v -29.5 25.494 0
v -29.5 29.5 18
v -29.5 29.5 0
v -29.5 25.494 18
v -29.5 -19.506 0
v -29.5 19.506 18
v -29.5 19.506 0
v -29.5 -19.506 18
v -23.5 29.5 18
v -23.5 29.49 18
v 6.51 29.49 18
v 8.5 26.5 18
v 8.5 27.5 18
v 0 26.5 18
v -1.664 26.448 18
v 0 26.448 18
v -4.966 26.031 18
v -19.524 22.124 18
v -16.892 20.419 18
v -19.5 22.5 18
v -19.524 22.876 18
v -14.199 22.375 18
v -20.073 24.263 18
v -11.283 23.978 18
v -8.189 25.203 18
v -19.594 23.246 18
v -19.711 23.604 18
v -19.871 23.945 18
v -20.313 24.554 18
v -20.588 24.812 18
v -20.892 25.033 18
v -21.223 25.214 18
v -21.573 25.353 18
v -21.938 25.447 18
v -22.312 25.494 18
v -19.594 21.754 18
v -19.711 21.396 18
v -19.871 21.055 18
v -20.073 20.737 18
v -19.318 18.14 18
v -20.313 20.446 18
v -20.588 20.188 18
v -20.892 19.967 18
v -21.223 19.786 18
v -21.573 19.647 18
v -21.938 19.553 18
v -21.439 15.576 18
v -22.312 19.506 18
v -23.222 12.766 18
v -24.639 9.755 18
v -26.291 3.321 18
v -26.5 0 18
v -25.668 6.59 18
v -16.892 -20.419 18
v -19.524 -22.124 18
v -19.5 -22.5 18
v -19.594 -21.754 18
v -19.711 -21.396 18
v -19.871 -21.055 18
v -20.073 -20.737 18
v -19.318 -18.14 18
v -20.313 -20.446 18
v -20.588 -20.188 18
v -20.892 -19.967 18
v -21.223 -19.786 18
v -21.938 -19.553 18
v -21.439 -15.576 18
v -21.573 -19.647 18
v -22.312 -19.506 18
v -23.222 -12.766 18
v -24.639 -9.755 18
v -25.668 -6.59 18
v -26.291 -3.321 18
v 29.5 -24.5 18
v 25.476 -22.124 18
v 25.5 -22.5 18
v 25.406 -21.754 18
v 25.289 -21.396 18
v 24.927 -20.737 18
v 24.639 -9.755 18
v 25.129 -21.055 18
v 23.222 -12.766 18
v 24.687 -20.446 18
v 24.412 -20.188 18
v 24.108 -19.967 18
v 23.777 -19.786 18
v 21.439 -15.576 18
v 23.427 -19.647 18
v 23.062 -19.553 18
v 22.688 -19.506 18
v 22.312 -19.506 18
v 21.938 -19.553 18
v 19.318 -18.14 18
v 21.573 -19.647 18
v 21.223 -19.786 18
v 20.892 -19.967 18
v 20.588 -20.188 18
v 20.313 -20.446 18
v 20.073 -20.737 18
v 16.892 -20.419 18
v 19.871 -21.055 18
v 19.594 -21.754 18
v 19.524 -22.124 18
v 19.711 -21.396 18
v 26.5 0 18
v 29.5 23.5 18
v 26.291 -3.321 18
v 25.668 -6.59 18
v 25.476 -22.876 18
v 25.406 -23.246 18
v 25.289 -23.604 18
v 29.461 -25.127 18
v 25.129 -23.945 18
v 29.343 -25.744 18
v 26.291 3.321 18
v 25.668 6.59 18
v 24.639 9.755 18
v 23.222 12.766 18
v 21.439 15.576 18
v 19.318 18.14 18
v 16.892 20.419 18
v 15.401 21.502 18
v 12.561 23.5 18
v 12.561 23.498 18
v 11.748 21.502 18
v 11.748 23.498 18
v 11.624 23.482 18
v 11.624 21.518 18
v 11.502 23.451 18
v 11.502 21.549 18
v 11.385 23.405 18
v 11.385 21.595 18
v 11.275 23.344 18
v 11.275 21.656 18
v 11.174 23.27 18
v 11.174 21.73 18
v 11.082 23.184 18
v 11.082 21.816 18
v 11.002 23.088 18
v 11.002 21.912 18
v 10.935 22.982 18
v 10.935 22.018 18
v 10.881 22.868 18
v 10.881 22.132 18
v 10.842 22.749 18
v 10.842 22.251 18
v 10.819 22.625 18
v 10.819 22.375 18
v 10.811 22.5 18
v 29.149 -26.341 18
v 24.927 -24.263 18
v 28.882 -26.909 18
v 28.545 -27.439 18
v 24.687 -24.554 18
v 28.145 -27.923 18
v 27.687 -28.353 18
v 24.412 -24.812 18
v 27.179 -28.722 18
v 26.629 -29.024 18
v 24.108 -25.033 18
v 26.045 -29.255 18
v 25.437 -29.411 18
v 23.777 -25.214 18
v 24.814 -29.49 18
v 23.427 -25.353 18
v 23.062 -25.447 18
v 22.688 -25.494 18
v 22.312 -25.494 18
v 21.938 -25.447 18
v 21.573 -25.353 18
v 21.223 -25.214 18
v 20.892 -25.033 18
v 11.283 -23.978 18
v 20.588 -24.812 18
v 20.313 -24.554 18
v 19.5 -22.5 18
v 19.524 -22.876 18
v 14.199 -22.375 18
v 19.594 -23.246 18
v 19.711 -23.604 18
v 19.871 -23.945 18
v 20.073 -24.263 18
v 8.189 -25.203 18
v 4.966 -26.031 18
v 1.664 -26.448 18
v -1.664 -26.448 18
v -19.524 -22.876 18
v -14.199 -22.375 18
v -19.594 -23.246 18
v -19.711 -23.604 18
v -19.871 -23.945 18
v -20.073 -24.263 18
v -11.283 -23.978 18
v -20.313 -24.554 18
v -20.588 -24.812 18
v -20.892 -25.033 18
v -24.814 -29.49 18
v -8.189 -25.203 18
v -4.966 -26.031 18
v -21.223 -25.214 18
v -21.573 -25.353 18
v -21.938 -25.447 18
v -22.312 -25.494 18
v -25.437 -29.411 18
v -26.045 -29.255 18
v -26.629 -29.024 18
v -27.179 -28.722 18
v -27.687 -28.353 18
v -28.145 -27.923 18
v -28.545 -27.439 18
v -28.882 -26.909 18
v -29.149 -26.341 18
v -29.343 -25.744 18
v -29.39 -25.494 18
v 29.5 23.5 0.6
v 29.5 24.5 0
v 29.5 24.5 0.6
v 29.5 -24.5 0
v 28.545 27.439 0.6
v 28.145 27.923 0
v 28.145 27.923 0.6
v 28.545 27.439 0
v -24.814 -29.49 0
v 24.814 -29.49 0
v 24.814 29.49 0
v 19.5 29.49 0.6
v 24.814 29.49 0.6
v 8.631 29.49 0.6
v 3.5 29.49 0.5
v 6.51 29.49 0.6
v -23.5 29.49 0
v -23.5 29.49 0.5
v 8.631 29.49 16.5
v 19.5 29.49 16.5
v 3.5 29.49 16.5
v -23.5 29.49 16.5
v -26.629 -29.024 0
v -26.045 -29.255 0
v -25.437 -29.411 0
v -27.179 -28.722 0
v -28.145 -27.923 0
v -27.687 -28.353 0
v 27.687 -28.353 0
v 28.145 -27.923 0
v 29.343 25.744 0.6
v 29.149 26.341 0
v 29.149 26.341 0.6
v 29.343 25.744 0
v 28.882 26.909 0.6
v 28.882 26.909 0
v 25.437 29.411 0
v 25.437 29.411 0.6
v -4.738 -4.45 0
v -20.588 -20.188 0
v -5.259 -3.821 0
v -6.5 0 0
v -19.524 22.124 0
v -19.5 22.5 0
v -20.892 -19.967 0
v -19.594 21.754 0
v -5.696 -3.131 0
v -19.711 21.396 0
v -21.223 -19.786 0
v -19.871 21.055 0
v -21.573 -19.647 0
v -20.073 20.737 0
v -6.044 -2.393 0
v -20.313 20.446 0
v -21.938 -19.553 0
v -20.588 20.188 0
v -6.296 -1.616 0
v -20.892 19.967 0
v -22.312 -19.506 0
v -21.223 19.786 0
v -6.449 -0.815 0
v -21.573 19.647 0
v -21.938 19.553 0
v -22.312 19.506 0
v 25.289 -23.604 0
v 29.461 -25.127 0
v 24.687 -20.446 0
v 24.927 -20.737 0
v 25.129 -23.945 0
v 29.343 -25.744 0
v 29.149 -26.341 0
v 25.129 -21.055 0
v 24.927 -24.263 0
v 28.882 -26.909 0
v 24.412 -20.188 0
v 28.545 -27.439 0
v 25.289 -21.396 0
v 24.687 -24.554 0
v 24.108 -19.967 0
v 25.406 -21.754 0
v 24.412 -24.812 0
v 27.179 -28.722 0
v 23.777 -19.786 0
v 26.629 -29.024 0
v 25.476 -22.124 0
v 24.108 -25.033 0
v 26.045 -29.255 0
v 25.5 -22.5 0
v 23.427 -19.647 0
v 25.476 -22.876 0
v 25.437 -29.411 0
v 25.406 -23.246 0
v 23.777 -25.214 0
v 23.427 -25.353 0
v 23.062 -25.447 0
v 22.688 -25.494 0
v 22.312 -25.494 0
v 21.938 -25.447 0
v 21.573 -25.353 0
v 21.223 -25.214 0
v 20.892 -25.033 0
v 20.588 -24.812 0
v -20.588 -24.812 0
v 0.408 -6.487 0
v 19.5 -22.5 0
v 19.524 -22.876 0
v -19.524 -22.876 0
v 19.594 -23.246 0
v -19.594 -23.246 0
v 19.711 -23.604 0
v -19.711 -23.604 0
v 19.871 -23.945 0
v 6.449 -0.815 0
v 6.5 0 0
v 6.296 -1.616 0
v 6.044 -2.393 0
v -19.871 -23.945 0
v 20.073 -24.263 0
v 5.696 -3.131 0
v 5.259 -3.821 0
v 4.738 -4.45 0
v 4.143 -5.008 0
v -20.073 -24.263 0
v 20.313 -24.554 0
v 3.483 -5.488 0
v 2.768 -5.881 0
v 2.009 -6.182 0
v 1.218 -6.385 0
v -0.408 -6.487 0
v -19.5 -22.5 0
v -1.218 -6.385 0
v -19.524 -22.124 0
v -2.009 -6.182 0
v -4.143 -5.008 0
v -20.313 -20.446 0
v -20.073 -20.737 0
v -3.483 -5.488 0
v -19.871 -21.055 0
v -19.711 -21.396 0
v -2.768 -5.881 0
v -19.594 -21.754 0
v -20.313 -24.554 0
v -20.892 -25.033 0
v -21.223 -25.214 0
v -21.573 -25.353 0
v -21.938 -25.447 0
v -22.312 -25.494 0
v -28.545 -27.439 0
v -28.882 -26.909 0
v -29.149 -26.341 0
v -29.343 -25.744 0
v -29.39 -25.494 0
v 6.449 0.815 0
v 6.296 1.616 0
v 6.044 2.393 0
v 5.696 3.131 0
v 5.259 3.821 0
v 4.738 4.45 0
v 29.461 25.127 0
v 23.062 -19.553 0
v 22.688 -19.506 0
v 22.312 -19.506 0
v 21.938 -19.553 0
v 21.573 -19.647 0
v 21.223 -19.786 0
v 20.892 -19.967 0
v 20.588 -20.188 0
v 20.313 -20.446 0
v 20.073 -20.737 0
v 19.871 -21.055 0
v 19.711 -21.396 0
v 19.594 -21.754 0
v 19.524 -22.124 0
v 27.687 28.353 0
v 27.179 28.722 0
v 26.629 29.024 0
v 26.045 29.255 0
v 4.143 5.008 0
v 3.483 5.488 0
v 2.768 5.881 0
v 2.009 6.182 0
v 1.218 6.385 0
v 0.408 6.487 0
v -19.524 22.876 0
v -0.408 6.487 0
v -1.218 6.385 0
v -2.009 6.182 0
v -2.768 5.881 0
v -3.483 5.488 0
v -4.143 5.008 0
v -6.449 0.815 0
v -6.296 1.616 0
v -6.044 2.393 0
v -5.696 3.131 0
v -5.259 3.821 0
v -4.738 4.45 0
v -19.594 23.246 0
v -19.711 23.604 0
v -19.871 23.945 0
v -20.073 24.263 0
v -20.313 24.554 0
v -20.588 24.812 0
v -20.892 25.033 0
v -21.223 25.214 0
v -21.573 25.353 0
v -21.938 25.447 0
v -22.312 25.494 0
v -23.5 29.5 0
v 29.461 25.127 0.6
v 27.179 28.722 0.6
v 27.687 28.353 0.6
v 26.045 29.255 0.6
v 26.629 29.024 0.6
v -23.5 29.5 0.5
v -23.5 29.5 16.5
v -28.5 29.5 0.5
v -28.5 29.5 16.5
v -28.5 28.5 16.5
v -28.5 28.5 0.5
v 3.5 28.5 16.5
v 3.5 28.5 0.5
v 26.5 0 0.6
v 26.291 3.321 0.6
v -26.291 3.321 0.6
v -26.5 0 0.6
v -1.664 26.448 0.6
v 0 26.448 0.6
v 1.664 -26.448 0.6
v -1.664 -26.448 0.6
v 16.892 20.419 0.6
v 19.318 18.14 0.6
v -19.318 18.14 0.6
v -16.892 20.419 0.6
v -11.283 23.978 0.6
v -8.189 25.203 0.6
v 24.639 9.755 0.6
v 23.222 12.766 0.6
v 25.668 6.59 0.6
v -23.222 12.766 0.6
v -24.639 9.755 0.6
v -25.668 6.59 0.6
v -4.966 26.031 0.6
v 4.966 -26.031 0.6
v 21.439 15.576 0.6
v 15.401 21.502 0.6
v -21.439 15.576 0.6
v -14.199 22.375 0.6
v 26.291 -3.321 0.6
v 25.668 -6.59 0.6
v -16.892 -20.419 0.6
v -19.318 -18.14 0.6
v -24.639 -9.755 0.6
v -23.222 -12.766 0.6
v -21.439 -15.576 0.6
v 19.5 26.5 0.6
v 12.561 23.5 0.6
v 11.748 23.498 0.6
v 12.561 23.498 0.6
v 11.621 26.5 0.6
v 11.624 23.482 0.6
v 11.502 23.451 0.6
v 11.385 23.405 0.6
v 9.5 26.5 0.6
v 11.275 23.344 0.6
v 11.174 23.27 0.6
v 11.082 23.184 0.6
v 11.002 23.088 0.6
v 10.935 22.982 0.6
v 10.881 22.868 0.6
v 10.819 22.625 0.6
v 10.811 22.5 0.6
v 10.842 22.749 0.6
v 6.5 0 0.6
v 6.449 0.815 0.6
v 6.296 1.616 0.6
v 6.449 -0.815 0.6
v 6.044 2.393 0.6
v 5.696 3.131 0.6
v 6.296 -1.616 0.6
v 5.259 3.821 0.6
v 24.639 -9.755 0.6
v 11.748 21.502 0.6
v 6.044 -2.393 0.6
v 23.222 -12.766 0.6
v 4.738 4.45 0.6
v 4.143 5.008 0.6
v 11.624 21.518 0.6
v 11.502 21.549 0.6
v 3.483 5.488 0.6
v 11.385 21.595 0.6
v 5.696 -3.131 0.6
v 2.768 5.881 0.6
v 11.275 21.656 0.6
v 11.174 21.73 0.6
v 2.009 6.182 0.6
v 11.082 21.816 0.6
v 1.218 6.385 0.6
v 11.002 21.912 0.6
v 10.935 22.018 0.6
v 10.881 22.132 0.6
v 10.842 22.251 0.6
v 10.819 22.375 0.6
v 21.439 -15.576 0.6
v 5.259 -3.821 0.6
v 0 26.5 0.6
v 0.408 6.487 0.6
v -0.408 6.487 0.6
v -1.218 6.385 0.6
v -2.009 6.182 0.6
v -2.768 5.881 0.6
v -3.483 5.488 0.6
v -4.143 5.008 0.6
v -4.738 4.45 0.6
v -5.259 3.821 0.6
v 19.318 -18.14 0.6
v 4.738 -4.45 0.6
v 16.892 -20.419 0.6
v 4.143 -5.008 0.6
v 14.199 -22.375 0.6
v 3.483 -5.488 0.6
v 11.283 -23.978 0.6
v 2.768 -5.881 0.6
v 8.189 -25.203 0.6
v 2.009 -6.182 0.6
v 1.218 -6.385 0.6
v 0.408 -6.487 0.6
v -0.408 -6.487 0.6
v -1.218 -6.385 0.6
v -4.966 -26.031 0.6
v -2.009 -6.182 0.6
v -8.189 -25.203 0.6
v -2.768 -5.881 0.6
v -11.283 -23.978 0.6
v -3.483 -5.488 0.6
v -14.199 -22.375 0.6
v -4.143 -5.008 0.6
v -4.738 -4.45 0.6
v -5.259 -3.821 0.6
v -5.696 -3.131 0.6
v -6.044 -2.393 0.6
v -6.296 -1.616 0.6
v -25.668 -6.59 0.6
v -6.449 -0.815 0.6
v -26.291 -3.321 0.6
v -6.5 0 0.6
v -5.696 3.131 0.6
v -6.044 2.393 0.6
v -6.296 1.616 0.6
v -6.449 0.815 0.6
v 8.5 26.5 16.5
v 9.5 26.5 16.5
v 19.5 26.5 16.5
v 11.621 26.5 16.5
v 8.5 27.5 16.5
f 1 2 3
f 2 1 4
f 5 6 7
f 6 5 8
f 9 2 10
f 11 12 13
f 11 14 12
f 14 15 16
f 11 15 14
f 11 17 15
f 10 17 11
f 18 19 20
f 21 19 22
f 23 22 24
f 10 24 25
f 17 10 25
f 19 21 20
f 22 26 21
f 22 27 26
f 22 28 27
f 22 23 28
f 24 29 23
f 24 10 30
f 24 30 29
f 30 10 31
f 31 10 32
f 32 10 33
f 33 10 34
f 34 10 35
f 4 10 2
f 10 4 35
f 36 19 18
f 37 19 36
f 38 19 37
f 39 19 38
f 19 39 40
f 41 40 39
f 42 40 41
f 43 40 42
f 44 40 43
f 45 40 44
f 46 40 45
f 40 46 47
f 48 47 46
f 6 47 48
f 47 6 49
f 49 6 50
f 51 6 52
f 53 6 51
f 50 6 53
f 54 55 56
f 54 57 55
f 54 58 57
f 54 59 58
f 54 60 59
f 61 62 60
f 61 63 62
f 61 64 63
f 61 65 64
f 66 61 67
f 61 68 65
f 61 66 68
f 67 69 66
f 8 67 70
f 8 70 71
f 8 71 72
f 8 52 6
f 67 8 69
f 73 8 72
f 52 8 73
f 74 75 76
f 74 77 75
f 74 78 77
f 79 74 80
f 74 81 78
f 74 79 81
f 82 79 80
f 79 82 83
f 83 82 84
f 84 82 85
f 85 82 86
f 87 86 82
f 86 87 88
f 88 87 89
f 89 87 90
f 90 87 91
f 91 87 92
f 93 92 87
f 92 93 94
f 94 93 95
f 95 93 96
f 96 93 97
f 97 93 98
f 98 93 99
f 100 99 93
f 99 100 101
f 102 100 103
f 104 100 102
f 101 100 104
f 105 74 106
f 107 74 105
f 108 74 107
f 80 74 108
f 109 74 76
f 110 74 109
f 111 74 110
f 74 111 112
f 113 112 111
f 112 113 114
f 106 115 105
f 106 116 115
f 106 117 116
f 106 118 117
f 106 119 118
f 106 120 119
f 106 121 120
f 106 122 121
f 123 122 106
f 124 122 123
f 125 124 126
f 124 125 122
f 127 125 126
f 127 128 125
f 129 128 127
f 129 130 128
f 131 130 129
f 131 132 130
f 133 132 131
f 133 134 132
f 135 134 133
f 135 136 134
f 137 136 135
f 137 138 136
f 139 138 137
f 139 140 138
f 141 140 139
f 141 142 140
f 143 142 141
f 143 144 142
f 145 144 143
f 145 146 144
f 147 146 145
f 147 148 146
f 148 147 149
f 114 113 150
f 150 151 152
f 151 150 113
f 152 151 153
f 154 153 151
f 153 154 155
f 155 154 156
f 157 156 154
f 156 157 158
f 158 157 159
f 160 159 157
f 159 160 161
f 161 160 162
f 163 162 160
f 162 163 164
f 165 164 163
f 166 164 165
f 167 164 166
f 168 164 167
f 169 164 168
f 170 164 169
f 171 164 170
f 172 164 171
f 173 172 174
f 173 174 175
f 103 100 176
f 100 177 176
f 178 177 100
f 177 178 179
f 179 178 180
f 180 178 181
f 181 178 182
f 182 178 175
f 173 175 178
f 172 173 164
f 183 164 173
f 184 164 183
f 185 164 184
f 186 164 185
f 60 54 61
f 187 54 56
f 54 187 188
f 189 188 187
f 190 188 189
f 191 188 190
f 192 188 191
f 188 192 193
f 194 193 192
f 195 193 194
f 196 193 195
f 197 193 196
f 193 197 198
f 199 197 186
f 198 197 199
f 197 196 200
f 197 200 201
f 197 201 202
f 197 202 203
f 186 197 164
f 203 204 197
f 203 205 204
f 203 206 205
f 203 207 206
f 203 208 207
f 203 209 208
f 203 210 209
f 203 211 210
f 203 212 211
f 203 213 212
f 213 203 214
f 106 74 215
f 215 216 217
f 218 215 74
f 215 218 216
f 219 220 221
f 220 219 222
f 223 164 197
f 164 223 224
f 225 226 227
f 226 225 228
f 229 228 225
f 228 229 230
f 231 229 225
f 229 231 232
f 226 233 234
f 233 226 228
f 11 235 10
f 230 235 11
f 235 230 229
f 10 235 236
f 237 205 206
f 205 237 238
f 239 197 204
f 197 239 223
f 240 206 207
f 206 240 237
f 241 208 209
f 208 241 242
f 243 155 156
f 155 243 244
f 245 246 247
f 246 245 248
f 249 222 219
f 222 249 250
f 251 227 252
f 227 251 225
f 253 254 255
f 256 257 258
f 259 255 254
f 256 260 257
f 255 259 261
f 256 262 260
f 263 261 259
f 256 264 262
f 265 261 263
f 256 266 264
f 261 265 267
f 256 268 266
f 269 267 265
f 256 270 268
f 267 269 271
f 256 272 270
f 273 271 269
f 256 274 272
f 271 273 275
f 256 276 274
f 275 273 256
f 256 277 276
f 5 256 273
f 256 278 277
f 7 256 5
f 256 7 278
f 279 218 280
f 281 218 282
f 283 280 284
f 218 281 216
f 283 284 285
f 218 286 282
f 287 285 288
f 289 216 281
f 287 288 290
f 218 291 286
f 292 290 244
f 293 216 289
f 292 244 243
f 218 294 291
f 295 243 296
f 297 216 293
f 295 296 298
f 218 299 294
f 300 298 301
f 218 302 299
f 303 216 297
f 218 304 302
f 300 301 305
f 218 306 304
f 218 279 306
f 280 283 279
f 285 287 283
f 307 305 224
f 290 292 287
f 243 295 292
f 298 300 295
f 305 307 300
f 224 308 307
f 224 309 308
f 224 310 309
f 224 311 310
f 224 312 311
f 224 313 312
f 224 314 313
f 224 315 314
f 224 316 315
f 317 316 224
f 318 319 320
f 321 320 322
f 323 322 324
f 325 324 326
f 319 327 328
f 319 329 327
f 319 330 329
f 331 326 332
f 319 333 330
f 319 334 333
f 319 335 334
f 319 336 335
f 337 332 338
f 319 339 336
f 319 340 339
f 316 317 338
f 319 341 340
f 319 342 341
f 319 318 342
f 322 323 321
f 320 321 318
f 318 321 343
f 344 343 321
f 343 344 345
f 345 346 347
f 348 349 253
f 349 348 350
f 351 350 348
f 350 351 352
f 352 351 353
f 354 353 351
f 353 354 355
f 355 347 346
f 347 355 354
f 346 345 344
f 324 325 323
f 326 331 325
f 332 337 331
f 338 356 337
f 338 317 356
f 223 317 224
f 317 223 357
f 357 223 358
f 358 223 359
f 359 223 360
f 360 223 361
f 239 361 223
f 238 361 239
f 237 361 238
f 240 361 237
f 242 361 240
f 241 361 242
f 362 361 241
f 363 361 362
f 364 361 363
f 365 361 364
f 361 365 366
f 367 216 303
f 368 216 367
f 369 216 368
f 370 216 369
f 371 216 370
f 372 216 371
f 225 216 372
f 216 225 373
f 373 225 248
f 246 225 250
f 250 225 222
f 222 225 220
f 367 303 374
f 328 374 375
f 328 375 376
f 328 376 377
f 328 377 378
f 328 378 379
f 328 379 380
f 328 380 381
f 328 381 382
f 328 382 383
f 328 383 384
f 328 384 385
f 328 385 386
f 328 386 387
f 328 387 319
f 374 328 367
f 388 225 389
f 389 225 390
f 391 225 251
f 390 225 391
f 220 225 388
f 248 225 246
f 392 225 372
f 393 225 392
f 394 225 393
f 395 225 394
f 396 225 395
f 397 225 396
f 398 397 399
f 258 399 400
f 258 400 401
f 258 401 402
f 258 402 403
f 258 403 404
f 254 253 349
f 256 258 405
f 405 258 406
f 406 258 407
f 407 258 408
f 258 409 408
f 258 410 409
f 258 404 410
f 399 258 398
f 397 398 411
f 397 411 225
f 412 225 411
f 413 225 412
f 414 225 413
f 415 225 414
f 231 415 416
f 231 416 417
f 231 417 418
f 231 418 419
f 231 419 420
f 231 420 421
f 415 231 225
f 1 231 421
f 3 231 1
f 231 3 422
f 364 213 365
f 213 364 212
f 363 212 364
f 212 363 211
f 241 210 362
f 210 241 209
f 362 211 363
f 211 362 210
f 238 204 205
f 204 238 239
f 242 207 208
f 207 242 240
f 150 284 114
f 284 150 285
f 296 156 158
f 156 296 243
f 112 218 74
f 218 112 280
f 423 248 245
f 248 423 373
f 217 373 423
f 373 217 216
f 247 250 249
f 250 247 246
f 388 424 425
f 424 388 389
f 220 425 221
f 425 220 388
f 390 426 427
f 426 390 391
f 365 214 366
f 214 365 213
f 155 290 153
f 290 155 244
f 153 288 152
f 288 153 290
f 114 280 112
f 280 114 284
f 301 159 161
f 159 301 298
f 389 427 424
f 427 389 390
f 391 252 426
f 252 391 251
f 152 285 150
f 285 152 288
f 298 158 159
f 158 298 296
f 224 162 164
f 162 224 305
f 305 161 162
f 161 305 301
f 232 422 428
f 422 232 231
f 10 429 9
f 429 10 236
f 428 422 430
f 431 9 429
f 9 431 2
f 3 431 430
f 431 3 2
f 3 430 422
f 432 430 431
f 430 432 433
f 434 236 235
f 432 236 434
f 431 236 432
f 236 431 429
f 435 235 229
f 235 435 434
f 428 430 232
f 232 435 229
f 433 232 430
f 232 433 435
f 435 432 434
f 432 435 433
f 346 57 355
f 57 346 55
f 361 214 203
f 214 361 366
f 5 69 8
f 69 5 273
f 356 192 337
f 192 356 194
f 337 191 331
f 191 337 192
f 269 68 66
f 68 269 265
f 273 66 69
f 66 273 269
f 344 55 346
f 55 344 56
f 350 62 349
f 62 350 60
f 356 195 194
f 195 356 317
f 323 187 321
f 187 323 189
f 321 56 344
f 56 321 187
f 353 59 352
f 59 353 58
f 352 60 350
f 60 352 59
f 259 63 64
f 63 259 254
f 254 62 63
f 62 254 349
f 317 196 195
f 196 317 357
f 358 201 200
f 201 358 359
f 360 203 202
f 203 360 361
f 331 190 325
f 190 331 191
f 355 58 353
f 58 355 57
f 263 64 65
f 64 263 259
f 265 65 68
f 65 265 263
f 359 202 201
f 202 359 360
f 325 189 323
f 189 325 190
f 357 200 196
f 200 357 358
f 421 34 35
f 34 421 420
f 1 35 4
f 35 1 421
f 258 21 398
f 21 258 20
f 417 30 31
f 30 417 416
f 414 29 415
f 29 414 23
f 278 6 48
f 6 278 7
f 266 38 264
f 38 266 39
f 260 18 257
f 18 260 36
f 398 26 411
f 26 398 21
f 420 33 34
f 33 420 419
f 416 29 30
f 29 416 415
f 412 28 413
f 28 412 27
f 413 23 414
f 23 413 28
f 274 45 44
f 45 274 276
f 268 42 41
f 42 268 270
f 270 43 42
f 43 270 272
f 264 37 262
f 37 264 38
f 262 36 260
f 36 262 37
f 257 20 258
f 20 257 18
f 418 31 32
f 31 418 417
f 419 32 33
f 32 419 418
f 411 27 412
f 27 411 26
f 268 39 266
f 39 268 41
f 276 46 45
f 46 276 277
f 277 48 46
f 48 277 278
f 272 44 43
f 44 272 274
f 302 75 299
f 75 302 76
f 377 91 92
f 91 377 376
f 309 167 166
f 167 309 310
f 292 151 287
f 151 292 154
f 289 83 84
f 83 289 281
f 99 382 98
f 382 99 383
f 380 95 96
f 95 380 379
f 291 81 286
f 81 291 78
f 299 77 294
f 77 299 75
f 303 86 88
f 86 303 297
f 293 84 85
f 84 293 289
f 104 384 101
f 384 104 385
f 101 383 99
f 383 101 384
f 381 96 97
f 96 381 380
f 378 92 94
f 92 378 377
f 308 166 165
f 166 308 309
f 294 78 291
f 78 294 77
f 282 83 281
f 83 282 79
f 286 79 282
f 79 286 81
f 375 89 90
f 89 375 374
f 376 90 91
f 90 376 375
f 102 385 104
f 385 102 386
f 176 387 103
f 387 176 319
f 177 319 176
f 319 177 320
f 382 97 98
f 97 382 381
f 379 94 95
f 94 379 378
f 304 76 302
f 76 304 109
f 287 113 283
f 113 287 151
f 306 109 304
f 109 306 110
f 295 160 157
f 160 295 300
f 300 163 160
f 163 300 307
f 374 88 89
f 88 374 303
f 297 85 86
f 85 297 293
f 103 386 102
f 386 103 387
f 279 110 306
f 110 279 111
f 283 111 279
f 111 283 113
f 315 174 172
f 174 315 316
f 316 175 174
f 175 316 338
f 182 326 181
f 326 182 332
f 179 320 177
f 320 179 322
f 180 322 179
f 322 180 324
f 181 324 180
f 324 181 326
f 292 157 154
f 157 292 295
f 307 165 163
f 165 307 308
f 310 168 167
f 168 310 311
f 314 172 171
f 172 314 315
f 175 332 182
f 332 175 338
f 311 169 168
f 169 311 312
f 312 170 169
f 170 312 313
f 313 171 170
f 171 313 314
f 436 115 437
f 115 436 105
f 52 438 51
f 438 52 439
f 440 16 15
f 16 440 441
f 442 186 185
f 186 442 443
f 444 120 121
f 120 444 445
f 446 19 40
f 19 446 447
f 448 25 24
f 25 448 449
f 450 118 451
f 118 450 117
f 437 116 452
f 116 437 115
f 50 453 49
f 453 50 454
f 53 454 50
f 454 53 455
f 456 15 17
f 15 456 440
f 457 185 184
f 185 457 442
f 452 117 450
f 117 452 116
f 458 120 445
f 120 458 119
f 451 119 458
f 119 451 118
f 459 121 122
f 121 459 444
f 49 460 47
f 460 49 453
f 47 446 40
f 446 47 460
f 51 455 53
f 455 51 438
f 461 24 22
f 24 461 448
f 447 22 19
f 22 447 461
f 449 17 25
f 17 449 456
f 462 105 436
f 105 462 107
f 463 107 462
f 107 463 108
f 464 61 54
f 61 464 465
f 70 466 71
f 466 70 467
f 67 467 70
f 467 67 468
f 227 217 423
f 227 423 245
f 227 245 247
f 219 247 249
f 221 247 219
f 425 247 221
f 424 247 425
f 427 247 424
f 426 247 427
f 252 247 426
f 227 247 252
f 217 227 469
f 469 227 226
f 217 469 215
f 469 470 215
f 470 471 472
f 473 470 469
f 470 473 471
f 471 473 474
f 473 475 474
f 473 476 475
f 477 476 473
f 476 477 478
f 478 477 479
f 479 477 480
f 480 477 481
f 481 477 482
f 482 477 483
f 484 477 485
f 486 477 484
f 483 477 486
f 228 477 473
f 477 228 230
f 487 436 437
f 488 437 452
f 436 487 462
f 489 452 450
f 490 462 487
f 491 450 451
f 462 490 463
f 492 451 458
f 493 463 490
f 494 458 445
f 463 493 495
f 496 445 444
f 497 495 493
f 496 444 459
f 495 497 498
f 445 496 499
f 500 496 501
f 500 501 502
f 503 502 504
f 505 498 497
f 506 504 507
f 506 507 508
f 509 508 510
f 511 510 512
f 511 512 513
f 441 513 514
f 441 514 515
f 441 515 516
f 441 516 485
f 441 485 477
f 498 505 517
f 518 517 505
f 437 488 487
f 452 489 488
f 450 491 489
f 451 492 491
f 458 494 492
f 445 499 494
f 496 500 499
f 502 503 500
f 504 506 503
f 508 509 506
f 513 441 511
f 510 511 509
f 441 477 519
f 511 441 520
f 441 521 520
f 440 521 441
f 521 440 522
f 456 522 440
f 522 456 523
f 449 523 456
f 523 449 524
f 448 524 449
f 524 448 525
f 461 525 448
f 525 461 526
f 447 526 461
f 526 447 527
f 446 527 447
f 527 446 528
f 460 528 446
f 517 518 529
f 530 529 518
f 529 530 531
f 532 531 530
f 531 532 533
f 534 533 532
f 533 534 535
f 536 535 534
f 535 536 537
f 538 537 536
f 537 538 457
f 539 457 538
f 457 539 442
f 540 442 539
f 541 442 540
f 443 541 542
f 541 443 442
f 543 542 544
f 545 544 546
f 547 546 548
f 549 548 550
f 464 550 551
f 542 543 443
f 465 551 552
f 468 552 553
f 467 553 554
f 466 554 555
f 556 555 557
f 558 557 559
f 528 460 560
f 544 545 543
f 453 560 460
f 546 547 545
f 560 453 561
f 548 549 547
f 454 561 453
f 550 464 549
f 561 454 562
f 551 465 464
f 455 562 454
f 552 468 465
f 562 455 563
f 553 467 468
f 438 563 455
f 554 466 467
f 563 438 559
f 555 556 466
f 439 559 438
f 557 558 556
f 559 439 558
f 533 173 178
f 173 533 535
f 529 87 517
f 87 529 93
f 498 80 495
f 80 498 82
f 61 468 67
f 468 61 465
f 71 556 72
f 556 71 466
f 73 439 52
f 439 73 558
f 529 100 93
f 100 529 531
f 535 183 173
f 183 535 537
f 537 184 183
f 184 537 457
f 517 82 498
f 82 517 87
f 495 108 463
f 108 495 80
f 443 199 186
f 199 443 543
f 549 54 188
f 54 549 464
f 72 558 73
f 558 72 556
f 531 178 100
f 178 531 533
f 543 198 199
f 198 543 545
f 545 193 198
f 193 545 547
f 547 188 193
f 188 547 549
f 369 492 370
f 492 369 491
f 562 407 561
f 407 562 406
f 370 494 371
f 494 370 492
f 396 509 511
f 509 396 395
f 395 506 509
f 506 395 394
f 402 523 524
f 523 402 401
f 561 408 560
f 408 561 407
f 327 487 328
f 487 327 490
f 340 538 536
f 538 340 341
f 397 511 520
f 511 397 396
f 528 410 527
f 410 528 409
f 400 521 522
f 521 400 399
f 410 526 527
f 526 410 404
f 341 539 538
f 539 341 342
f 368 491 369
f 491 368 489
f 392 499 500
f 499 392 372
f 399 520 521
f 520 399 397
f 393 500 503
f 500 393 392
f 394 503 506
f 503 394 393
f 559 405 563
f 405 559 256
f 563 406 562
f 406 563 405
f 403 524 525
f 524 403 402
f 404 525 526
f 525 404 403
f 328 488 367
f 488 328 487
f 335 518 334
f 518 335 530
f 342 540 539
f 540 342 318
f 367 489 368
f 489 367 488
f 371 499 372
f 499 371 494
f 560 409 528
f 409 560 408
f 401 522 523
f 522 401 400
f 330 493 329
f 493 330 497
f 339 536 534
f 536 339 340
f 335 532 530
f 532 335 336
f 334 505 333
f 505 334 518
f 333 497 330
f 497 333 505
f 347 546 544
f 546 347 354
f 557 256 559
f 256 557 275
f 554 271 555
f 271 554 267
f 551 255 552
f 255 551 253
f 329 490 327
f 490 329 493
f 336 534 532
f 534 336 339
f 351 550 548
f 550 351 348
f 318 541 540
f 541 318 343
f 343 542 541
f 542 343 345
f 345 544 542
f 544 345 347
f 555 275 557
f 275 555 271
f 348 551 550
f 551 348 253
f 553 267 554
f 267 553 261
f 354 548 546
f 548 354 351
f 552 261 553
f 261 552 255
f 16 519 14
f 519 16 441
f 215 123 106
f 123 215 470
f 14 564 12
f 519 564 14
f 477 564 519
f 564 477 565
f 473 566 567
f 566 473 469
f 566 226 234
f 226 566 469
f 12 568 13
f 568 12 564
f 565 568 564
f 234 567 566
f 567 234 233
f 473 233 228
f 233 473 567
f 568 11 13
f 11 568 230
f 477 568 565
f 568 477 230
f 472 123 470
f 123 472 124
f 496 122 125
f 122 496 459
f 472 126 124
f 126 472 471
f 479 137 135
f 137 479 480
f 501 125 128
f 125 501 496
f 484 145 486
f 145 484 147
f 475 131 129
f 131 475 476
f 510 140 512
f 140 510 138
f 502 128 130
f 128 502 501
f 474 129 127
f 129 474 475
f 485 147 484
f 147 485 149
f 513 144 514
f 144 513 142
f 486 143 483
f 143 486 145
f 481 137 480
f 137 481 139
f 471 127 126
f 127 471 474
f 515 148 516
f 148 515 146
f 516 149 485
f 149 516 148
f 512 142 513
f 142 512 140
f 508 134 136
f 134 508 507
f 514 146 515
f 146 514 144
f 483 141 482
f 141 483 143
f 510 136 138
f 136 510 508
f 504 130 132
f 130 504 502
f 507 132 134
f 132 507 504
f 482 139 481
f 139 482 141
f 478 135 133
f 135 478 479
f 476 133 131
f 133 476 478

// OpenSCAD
$fn = 50;


union() {
	difference() {
		union() {
			translate(v = [0, 0, 0]) {
				rotate(a = [0, 0, 0]) {
					hull() {
						translate(v = [-24.5000000000, 24.5000000000, 0]) {
							rotate(a = [0, 0, 0]) {
								translate(v = [0, 0, 0]) {
									rotate(a = [0, 0, 0]) {
										cylinder(h = 18, r = 5);
									}
								}
							}
						}
						translate(v = [24.5000000000, 24.5000000000, 0]) {
							rotate(a = [0, 0, 0]) {
								translate(v = [0, 0, 0]) {
									rotate(a = [0, 0, 0]) {
										cylinder(h = 18, r = 5);
									}
								}
							}
						}
						translate(v = [-24.5000000000, -24.5000000000, 0]) {
							rotate(a = [0, 0, 0]) {
								translate(v = [0, 0, 0]) {
									rotate(a = [0, 0, 0]) {
										cylinder(h = 18, r = 5);
									}
								}
							}
						}
						translate(v = [24.5000000000, -24.5000000000, 0]) {
							rotate(a = [0, 0, 0]) {
								translate(v = [0, 0, 0]) {
									rotate(a = [0, 0, 0]) {
										cylinder(h = 18, r = 5);
									}
								}
							}
						}
					}
				}
			}
			translate(v = [-29.5000000000, 23.5000000000, 0]) {
				rotate(a = [0, 0, 0]) {
					cube(size = [6, 6, 18]);
				}
			}
		}
		union() {
			#translate(v = [-28.5000000000, 28.5000000000, 0.5000000000]) {
				rotate(a = [0, 0, 0]) {
					cube(size = [32, 1, 16]);
				}
			}
			translate(v = [-30.0000000000, -22.5000000000, -125]) {
				rotate(a = [0, 0, 0]) {
					hull() {
						translate(v = [7.5000000000, 0, 0]) {
							rotate(a = [0, 0, 0]) {
								translate(v = [0, 0, 0]) {
									rotate(a = [0, 0, 0]) {
										cylinder(h = 250, r = 3.0000000000);
									}
								}
							}
						}
						translate(v = [-7.5000000000, 0, 0]) {
							rotate(a = [0, 0, 0]) {
								translate(v = [0, 0, 0]) {
									rotate(a = [0, 0, 0]) {
										cylinder(h = 250, r = 3.0000000000);
									}
								}
							}
						}
					}
				}
			}
			translate(v = [-30.0000000000, 22.5000000000, -125]) {
				rotate(a = [0, 0, 0]) {
					hull() {
						translate(v = [7.5000000000, 0, 0]) {
							rotate(a = [0, 0, 0]) {
								translate(v = [0, 0, 0]) {
									rotate(a = [0, 0, 0]) {
										cylinder(h = 250, r = 3.0000000000);
									}
								}
							}
						}
						translate(v = [-7.5000000000, 0, 0]) {
							rotate(a = [0, 0, 0]) {
								translate(v = [0, 0, 0]) {
									rotate(a = [0, 0, 0]) {
										cylinder(h = 250, r = 3.0000000000);
									}
								}
							}
						}
					}
				}
			}
			translate(v = [22.5000000000, -22.5000000000, -125.0000000000]) {
				rotate(a = [0, 0, 0]) {
					cylinder(h = 250, r = 3.0000000000);
				}
			}
			translate(v = [0, 0, 0.6000000000]) {
				rotate(a = [0, 0, 0]) {
					cylinder(h = 20.4000000000, r = 26.5000000000);
				}
			}
			translate(v = [0, 0, -9.0000000000]) {
				rotate(a = [0, 0, 0]) {
					cylinder(h = 18, r = 6.5000000000);
				}
			}
			translate(v = [0.0000000000, 23.5000000000, 0.6000000000]) {
				rotate(a = [0, 0, 0]) {
					cube(size = [29.5000000000, 3, 20.4000000000]);
				}
			}
			translate(v = [19.5000000000, 23.5000000000, 0.6000000000]) {
				rotate(a = [0, 0, 0]) {
					cube(size = [10, 6, 20.4000000000]);
				}
			}
			translate(v = [8.5000000000, 23.5000000000, 16.5000000000]) {
				rotate(a = [0, 0, 0]) {
					cube(size = [21, 6, 1.5000000000]);
				}
			}
			translate(v = [5.7500000000, 30.2500000000, 0.6000000000]) {
				rotate(a = [0, 0, -45]) {
					cube(size = [7.5000000000, 1.5000000000, 20.4000000000]);
				}
			}
			translate(v = [5.0610000000, 21.5000000000, 0.6000000000]) {
				rotate(a = [0, 0, 0]) {
					cube(size = [7.5000000000, 2, 17.4000000000]);
				}
			}
		}
	}
	union() {
		translate(v = [14.3110000000, 22.5000000000, 0]) {
			rotate(a = [0, 0, 0]) {
				hull() {
					translate(v = [2.5000000000, 0, 0]) {
						rotate(a = [0, 0, 0]) {
							#translate(v = [0, 0, 0]) {
								rotate(a = [0, 0, 0]) {
									cylinder(h = 18, r = 1.0000000000);
								}
							}
						}
					}
					translate(v = [-2.5000000000, 0, 0]) {
						rotate(a = [0, 0, 0]) {
							#translate(v = [0, 0, 0]) {
								rotate(a = [0, 0, 0]) {
									cylinder(h = 18, r = 1.0000000000);
								}
							}
						}
					}
				}
			}
		}
	}
}
